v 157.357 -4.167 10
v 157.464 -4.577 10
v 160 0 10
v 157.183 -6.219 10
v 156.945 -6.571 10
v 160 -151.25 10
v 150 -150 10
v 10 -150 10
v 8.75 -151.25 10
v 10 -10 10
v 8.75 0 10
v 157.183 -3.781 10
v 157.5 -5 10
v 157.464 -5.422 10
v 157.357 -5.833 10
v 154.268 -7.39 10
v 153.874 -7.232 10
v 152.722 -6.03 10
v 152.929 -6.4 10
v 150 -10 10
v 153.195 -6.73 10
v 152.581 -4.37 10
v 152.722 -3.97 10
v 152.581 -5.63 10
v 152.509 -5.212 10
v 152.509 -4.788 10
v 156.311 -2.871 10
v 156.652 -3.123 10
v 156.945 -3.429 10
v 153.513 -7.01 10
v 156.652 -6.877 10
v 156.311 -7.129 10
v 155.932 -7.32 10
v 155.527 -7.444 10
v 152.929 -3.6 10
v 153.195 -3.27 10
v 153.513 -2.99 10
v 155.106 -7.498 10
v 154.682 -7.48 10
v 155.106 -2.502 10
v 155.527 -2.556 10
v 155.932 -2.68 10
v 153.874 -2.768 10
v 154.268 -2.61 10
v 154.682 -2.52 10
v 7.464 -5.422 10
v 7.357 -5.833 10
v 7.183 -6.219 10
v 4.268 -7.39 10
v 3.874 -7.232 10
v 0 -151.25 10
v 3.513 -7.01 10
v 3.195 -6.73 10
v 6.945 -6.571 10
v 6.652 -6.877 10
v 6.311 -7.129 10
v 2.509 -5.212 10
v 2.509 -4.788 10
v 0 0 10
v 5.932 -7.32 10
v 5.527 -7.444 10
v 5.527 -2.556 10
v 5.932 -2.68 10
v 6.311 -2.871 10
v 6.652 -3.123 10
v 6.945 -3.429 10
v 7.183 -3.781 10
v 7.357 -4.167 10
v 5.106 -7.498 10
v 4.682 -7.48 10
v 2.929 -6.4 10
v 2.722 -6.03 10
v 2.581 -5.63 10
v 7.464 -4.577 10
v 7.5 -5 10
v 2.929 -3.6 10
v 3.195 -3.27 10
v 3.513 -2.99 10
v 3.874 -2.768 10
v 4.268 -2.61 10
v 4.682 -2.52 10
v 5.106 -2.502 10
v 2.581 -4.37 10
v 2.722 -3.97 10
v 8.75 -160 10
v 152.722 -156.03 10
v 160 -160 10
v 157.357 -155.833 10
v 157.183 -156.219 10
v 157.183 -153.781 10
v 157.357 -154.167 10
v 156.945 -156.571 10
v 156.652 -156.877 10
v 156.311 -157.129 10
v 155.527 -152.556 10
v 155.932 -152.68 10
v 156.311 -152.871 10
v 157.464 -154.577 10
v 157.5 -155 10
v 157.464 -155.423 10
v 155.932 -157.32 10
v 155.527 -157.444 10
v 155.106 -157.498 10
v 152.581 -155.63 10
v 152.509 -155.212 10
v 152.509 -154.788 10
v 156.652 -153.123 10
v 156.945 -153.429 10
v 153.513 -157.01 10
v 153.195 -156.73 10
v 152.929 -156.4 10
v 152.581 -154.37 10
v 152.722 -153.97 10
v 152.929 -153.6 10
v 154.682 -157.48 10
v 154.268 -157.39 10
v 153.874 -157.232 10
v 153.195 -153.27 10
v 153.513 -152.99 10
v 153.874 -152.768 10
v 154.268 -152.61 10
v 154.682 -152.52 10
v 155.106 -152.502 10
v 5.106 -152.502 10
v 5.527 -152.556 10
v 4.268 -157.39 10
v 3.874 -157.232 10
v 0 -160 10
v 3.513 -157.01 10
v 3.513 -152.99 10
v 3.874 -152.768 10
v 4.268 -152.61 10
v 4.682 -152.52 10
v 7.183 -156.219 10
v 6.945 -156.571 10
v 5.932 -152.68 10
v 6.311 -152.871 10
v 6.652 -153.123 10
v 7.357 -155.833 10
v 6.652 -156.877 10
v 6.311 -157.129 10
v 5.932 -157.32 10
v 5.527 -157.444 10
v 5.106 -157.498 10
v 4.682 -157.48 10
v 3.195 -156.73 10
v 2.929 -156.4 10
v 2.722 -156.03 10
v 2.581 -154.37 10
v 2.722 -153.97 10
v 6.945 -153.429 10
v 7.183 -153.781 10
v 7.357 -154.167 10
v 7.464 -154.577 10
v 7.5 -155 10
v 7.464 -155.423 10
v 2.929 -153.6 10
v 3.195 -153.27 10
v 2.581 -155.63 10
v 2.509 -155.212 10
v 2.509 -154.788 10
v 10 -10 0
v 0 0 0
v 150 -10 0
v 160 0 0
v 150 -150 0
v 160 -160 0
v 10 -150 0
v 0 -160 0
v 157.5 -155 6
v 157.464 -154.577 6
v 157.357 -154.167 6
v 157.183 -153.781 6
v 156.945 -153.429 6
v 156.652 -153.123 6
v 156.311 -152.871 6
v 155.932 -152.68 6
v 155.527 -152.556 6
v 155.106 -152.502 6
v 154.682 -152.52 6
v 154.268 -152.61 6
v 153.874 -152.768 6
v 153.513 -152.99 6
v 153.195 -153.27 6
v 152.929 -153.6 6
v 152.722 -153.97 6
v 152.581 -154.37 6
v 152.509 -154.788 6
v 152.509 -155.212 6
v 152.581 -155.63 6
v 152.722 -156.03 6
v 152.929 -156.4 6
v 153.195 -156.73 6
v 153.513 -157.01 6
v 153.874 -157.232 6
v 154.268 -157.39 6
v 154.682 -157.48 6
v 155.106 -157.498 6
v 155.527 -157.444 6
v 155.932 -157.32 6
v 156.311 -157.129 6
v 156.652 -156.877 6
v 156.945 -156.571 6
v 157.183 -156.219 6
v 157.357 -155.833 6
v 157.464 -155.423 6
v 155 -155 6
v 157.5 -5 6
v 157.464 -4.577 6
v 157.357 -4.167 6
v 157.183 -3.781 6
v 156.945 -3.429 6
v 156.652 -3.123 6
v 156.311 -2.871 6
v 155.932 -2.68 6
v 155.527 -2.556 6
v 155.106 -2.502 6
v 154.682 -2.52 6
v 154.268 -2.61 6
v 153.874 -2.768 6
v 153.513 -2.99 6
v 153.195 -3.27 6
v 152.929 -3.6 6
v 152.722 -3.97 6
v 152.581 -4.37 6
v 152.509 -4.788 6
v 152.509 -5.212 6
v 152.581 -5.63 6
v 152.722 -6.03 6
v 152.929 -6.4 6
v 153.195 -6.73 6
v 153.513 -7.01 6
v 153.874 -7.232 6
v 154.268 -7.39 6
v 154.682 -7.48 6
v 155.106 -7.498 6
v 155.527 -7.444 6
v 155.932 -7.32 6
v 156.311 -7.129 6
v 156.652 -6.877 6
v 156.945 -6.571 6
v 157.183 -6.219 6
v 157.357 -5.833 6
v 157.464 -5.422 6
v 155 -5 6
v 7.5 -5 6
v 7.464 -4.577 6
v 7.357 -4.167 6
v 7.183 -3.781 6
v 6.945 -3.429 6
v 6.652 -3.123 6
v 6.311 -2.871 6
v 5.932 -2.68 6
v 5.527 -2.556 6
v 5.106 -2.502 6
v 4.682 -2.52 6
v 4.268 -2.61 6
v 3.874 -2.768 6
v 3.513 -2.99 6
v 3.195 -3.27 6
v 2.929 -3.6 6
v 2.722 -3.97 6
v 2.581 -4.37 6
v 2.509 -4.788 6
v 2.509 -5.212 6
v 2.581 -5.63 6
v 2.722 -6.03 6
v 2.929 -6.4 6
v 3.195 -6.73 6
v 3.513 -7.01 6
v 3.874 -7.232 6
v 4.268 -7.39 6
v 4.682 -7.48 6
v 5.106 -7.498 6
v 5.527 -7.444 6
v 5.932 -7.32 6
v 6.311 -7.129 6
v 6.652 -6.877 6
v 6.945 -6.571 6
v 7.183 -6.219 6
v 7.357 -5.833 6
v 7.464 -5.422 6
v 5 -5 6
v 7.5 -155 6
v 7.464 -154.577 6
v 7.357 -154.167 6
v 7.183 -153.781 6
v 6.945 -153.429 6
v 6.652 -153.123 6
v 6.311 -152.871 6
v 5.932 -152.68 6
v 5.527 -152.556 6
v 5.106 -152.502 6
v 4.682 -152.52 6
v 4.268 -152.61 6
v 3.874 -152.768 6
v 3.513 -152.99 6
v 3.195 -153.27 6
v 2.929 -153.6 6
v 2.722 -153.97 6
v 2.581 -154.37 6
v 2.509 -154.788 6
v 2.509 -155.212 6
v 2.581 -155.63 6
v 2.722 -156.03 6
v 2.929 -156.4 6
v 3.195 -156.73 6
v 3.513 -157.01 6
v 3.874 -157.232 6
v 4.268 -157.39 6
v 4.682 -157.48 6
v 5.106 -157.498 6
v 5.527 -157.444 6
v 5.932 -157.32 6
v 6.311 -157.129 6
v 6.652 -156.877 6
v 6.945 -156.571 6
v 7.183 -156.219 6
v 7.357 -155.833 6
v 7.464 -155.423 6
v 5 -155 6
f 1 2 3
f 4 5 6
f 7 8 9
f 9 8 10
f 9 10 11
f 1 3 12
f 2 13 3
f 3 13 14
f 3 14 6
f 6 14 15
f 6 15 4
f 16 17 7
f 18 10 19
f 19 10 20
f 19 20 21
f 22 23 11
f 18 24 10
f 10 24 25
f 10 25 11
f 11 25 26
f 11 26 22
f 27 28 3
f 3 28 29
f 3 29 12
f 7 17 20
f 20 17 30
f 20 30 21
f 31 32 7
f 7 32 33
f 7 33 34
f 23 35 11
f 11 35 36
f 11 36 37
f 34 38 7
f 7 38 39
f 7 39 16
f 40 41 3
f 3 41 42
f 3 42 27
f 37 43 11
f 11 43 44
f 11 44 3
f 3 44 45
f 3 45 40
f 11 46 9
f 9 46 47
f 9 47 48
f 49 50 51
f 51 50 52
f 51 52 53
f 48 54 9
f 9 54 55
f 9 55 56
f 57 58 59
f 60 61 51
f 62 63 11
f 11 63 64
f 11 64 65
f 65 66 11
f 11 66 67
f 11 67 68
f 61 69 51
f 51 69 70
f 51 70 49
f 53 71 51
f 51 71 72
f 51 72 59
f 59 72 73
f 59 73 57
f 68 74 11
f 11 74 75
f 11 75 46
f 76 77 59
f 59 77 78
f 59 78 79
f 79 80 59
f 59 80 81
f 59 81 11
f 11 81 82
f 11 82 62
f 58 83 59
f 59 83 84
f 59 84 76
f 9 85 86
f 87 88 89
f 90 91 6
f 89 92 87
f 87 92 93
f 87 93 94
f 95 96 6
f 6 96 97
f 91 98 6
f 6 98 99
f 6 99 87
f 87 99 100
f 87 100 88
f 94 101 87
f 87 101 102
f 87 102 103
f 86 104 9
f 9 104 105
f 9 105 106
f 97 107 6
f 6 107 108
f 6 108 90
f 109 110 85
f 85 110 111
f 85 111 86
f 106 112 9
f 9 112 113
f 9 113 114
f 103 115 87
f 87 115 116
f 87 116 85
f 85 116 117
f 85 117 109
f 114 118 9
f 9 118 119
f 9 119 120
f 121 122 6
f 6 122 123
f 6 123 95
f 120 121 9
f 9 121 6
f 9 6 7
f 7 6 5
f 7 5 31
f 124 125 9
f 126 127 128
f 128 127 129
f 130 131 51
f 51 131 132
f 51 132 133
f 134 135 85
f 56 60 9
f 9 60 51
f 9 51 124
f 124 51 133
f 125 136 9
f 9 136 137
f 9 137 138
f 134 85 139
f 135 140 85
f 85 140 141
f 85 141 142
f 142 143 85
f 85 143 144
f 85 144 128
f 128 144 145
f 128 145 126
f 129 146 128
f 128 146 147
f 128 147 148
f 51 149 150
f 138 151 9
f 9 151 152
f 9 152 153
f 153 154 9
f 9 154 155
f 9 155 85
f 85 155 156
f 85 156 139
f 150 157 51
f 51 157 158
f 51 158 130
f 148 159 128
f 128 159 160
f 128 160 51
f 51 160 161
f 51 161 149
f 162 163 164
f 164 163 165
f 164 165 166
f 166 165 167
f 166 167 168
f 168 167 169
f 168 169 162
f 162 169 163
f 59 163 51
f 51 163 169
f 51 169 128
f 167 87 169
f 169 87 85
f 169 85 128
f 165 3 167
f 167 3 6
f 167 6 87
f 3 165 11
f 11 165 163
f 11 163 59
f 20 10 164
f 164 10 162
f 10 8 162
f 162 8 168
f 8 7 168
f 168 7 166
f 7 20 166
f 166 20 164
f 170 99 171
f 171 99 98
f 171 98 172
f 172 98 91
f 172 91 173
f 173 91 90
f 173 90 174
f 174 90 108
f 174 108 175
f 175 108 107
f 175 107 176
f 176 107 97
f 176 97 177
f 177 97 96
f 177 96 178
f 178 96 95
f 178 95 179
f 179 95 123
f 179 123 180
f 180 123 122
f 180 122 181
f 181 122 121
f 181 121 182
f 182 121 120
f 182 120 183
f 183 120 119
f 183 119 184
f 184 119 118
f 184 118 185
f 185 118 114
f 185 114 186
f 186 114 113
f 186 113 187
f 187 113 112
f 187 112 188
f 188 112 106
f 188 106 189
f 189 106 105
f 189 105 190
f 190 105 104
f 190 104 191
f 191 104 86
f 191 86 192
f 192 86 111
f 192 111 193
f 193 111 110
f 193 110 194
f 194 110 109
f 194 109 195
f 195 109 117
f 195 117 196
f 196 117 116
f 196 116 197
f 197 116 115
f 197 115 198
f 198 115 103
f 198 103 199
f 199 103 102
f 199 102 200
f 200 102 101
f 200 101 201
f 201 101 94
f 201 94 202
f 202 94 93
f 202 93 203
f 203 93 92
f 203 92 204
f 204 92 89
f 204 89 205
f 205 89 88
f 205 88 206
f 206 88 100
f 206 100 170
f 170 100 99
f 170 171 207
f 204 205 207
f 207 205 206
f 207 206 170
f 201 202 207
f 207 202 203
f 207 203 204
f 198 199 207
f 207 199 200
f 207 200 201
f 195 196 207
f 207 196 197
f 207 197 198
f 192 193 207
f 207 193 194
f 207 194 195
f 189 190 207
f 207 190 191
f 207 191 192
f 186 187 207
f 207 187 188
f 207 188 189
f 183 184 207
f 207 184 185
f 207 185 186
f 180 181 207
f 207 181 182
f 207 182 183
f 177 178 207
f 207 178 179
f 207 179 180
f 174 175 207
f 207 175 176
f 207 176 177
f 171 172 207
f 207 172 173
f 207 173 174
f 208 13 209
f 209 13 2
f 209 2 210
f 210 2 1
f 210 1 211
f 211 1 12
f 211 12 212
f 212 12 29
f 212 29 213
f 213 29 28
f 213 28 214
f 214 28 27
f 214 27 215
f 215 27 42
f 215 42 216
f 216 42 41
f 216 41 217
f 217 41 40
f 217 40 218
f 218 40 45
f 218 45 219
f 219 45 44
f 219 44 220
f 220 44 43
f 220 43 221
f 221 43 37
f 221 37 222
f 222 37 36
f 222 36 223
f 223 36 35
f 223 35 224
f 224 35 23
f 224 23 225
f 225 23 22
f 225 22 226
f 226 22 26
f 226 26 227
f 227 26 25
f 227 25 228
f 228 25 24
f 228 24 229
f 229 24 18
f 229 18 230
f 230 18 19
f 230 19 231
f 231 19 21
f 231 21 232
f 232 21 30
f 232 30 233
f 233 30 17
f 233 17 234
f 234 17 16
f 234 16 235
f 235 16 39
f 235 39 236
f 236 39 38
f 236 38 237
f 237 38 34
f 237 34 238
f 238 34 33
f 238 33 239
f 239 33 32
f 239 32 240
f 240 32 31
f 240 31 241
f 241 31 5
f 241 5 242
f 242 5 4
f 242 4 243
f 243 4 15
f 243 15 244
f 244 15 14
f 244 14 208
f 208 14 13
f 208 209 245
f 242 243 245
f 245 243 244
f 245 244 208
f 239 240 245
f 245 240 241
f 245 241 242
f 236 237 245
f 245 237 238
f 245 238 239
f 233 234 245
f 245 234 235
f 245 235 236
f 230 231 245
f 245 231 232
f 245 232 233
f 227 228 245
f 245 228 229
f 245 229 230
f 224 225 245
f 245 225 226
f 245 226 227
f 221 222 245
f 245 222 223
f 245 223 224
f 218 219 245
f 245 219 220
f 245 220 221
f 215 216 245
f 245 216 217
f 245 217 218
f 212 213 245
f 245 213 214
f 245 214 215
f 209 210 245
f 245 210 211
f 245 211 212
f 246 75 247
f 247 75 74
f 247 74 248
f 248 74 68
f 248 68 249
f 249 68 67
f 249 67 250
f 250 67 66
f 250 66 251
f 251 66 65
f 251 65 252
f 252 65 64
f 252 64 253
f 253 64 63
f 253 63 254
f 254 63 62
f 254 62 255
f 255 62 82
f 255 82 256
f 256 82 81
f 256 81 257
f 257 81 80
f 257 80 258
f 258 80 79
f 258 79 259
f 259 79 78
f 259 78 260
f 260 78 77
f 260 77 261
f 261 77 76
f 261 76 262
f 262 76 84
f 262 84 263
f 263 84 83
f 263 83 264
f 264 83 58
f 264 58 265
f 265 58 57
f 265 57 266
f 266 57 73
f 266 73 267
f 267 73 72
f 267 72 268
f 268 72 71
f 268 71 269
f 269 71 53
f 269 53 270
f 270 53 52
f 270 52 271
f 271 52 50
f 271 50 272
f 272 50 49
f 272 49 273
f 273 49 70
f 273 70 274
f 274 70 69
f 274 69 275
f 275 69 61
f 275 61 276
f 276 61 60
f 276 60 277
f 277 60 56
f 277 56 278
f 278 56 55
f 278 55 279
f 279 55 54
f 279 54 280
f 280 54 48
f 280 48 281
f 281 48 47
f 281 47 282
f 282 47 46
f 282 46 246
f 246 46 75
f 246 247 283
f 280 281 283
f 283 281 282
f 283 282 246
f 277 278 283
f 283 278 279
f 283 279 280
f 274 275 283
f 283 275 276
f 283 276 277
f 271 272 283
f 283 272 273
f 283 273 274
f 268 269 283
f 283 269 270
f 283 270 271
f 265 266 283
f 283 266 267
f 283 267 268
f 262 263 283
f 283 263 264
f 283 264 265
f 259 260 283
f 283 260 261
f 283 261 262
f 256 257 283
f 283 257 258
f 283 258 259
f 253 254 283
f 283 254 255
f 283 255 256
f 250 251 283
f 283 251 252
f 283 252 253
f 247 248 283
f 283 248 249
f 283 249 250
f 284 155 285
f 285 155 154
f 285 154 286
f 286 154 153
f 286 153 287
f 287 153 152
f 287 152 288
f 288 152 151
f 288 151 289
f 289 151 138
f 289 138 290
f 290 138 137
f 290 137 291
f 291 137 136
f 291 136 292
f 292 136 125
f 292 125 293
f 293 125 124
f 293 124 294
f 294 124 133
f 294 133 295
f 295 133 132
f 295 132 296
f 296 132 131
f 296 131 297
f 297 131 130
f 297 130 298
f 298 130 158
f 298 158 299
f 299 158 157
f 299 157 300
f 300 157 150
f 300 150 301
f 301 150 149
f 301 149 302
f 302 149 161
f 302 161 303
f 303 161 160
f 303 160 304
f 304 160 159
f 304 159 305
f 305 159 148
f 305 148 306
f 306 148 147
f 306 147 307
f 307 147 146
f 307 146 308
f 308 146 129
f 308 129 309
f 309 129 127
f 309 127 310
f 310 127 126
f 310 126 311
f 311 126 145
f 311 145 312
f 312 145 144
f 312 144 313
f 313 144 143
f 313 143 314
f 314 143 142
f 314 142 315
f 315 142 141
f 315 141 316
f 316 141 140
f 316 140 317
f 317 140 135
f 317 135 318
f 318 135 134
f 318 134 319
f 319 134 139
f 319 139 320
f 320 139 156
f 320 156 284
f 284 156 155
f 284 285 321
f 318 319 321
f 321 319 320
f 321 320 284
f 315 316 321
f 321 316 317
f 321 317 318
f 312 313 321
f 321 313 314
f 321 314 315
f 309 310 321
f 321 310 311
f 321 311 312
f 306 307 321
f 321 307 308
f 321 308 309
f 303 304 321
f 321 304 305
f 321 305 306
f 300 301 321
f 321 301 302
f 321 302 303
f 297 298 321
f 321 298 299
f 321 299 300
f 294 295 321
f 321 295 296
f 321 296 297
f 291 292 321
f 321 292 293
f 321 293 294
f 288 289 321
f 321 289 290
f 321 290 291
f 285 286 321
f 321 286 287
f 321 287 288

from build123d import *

# Parameters (mm, degrees)
CROQUIS2_W                   = 160
CROQUIS2_H                   = 160
CROQUIS2_W_2                 = 140
CROQUIS2_H_2                 = 140
SALIENTE_EXTRUIR1_DEPTH      = 10
SALIENTE_EXTRUIR2_DEPTH      = 140
SALIENTE_EXTRUIR2_DEPTH_BACK = 10
CROQUIS4_W                   = 10
CROQUIS4_H                   = 10
CROQUIS7_W                   = 160
CROQUIS7_H                   = 160
CROQUIS7_W_2                 = 140
CROQUIS7_H_2                 = 140
SALIENTE_EXTRUIR3_DEPTH      = 10
CROQUIS8_W                   = 63
CROQUIS8_H                   = 12
CROQUIS8_R                   = 2.5
SALIENTE_EXTRUIR4_DEPTH      = 5
CROQUIS9_W                   = 174.167702824
CROQUIS9_H                   = 180.53552259
CORTAR_EXTRUIR2_DEPTH        = 278.128129211
CROQUIS10_R                  = 2.5
CORTAR_EXTRUIR3_DEPTH        = 4


with BuildPart() as part:
    # Croquis2 → Saliente-Extruir1 (new body)
    with BuildSketch(Plane.XY):
        with Locations((80, -80)):
            Rectangle(CROQUIS2_W, CROQUIS2_H)
        with Locations((80, -80)):
            Rectangle(CROQUIS2_W_2, CROQUIS2_H_2, mode=Mode.SUBTRACT)
    extrude(amount=SALIENTE_EXTRUIR1_DEPTH)

    # Croquis4 → Saliente-Extruir2 (add, two sides: drawn at the far end of the back side and taken through both)
    with BuildSketch(Plane.XY.offset(10).offset(-SALIENTE_EXTRUIR2_DEPTH_BACK)):
        with Locations((5, -5)):
            Rectangle(CROQUIS4_W, CROQUIS4_H)
        with Locations((155, -5)):
            Rectangle(CROQUIS4_W, CROQUIS4_H)
        with Locations((155, -155)):
            Rectangle(CROQUIS4_W, CROQUIS4_H)
        with Locations((5, -155)):
            Rectangle(CROQUIS4_W, CROQUIS4_H)
    extrude(amount=SALIENTE_EXTRUIR2_DEPTH + SALIENTE_EXTRUIR2_DEPTH_BACK)

    # Croquis7 → Saliente-Extruir3 (add)
    with BuildSketch(Plane.XY.offset(150)):
        with Locations((80, -80)):
            Rectangle(CROQUIS7_W, CROQUIS7_H)
        with Locations((80, -80)):
            Rectangle(CROQUIS7_W_2, CROQUIS7_H_2, mode=Mode.SUBTRACT)
    extrude(amount=SALIENTE_EXTRUIR3_DEPTH)

    # Croquis8 → Saliente-Extruir4 (add)
    # profile 1 of 2: a face of its own
    with BuildSketch(Plane.XY.offset(160)):
        with Locations((31.5, -80)):
            Rectangle(CROQUIS8_W, CROQUIS8_H)
        with Locations((55, -80)):
            Circle(CROQUIS8_R, mode=Mode.SUBTRACT)
    # profile 2 of 2: a face of its own
    with BuildSketch(Plane.XY.offset(160)):
        with Locations((128.5, -80)):
            Rectangle(CROQUIS8_W, CROQUIS8_H)
        with Locations((105, -80)):
            Circle(CROQUIS8_R, mode=Mode.SUBTRACT)
    extrude(amount=-SALIENTE_EXTRUIR4_DEPTH)

    # Croquis9 → Cortar-Extruir2 (cut, through all)
    with BuildSketch(Plane.ZY):
        with Locations((97.083851412, -84.953806067)):
            Rectangle(CROQUIS9_W, CROQUIS9_H)
    extrude(amount=-CORTAR_EXTRUIR2_DEPTH, mode=Mode.SUBTRACT)

    # Croquis10 → Cortar-Extruir3 (cut)
    with BuildSketch(Plane.XY.offset(10)):
        with Locations((5, -155)):
            Circle(CROQUIS10_R)
        with Locations((5, -5)):
            Circle(CROQUIS10_R)
        with Locations((155, -5)):
            Circle(CROQUIS10_R)
        with Locations((155, -155)):
            Circle(CROQUIS10_R)
    extrude(amount=-CORTAR_EXTRUIR3_DEPTH, mode=Mode.SUBTRACT)


solid = part.part
